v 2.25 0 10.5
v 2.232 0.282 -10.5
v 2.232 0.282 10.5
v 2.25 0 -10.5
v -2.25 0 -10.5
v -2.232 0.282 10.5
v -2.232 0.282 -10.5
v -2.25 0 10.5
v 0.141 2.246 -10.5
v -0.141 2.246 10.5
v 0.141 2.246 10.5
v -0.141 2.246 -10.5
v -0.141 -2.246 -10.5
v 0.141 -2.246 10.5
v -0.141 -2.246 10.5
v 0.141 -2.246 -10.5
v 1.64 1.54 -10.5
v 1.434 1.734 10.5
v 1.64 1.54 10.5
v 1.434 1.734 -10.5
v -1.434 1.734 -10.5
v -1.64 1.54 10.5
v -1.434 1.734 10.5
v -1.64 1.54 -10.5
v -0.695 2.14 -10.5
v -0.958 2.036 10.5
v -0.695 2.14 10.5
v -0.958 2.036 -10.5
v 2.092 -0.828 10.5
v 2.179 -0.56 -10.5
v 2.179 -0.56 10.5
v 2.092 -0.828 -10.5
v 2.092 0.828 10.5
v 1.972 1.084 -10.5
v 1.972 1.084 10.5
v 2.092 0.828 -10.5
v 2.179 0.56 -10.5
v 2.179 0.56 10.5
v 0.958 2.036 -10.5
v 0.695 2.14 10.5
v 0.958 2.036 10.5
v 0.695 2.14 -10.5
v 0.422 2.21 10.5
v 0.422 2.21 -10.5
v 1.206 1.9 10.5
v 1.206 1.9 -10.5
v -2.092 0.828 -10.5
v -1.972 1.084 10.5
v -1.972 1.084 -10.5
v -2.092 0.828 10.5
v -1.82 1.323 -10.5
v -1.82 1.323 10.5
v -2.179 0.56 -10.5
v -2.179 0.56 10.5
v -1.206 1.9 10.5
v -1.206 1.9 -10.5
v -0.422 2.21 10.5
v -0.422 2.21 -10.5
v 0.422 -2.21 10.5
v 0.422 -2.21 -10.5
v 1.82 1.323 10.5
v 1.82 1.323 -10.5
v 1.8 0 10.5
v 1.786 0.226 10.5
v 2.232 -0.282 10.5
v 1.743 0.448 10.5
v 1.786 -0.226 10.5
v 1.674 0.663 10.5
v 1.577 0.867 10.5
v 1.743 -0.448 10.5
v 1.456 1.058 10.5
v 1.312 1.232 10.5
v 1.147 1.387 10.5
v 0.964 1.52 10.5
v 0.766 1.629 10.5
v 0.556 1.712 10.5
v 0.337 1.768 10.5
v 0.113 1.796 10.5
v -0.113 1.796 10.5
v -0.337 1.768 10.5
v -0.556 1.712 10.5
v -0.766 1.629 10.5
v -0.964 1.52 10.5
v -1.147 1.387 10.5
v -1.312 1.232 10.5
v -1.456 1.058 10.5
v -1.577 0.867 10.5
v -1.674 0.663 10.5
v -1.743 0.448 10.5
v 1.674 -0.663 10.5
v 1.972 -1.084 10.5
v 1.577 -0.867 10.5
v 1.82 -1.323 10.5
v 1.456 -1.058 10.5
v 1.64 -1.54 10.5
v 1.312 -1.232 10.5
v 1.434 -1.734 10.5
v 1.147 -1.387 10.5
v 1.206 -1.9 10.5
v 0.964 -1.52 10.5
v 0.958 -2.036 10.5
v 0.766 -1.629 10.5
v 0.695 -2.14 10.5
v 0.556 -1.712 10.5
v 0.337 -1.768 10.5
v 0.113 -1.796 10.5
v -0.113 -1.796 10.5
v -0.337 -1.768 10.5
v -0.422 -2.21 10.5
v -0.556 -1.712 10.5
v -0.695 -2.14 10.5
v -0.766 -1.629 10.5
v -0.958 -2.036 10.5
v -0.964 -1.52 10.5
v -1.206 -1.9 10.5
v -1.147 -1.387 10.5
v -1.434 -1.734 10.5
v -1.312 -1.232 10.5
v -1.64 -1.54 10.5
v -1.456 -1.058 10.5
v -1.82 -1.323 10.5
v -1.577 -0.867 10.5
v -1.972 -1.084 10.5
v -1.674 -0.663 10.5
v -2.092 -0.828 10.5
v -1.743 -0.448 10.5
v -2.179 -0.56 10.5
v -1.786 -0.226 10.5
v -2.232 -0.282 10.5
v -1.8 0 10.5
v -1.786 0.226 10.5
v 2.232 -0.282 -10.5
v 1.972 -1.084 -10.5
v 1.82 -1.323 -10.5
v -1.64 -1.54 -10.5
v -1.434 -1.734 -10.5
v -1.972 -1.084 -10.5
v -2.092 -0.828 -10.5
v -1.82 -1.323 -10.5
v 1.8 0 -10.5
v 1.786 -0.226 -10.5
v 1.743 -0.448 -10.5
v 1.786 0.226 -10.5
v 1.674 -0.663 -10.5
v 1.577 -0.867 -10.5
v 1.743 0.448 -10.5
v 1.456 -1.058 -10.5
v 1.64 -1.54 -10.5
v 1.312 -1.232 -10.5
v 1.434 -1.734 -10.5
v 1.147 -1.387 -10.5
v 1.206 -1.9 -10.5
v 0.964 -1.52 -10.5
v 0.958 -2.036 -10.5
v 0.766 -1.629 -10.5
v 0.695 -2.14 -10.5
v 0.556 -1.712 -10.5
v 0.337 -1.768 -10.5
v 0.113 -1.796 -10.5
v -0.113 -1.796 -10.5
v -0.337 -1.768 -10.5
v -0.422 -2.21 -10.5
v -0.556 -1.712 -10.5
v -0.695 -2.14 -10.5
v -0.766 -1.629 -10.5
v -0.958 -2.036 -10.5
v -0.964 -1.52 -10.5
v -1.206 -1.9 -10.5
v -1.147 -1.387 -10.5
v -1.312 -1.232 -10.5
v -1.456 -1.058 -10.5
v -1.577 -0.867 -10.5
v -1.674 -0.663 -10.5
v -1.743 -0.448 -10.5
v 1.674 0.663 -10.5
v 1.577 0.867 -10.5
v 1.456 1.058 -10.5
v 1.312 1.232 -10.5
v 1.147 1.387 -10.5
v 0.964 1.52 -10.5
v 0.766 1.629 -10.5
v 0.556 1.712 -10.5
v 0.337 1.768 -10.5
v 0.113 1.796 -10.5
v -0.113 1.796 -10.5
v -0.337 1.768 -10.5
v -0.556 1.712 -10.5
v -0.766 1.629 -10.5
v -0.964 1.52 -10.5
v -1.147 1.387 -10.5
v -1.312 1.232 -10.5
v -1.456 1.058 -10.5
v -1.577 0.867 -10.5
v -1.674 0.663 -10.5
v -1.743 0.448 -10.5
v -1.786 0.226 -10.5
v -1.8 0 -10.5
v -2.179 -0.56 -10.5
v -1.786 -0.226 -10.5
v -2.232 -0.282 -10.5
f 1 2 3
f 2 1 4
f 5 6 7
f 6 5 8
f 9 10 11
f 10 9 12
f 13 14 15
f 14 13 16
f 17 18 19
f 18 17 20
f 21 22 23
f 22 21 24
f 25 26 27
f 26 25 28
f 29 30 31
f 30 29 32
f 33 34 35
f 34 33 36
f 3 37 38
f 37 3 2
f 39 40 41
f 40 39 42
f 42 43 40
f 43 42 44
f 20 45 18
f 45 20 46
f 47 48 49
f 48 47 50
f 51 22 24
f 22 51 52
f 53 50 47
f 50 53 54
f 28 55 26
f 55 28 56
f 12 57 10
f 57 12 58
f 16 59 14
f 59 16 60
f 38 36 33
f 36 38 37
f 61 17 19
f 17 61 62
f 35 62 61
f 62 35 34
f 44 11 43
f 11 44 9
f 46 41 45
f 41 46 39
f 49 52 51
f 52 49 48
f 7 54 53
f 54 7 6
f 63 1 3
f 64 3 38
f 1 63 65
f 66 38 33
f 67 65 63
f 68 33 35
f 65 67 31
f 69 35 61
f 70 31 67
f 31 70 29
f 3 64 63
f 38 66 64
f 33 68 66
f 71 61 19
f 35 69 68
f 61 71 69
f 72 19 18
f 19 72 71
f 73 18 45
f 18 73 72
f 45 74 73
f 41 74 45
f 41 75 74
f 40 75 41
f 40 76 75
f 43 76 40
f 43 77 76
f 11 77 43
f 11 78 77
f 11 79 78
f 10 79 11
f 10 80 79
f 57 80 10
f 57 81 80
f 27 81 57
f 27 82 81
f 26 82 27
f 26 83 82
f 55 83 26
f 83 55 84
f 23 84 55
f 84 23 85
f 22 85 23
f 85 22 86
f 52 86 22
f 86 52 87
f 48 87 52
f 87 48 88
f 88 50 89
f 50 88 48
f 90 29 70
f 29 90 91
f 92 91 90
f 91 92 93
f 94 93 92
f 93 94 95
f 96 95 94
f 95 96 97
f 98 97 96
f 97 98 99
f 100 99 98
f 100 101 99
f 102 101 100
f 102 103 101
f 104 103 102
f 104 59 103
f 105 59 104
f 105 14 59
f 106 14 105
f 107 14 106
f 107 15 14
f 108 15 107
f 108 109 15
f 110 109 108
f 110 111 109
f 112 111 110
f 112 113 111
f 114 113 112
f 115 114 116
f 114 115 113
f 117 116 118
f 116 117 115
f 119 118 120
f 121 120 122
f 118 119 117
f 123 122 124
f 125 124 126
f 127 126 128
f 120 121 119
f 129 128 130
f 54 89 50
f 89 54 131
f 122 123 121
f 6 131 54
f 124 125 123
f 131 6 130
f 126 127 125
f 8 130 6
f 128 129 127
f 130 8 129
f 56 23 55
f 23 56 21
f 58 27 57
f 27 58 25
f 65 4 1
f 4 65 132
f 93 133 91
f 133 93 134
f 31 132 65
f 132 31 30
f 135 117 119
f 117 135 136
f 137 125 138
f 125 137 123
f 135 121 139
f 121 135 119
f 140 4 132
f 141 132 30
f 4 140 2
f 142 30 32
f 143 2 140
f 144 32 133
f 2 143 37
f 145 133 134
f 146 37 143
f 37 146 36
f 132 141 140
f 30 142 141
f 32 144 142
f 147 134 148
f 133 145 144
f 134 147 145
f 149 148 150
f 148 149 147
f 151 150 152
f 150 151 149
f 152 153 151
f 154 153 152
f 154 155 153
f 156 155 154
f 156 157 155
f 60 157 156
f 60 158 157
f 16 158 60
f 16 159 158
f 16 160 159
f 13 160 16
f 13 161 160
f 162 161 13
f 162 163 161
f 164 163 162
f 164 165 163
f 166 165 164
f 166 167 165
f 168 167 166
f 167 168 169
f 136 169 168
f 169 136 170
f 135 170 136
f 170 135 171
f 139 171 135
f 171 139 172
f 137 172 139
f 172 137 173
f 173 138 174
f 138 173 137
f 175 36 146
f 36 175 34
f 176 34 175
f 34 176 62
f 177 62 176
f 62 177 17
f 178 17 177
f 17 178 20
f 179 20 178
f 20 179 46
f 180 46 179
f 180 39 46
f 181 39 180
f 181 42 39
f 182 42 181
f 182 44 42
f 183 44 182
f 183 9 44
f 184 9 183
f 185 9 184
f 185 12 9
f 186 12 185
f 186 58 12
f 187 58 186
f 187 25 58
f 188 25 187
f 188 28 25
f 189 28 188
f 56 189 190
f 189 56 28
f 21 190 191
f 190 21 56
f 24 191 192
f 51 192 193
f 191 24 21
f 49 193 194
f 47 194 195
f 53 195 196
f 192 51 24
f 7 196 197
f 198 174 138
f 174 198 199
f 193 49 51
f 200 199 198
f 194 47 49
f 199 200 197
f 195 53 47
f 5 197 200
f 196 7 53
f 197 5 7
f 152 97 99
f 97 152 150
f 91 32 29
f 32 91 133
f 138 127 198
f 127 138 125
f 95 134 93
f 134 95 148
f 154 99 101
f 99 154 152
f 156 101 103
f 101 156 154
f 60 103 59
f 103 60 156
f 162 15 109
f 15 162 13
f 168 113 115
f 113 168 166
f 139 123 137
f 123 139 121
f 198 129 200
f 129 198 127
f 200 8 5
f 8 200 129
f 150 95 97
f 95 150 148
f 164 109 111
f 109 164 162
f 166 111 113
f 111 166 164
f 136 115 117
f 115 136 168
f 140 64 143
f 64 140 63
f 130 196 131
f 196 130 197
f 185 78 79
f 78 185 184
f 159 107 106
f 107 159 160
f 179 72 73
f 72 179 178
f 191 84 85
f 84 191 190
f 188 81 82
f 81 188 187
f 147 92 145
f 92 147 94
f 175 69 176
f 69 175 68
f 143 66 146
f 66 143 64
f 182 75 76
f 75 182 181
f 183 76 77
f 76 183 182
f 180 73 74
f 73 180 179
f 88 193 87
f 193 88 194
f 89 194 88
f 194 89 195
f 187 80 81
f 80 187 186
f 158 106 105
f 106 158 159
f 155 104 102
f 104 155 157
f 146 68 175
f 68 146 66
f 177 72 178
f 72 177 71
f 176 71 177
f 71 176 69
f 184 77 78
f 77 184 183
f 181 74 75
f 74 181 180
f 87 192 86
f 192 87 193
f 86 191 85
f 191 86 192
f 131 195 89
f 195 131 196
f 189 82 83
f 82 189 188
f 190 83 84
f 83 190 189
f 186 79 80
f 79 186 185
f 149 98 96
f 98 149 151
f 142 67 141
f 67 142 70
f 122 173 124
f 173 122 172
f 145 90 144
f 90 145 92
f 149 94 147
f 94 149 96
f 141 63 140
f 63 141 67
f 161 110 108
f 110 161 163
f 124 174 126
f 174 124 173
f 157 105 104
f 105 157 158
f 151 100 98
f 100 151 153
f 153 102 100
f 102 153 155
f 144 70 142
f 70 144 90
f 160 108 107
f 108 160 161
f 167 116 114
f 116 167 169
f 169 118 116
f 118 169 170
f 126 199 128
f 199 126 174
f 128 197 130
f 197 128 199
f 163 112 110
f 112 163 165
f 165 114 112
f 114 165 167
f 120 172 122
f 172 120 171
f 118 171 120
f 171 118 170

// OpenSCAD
$fn = 50;


difference() {
	union() {
		translate(v = [0, 0, -10.5000000000]) {
			cylinder(h = 21, r = 2.2500000000);
		}
	}
	union() {
		translate(v = [0, 0, -100.0000000000]) {
			cylinder(h = 200, r = 1.8000000000);
		}
	}
}
